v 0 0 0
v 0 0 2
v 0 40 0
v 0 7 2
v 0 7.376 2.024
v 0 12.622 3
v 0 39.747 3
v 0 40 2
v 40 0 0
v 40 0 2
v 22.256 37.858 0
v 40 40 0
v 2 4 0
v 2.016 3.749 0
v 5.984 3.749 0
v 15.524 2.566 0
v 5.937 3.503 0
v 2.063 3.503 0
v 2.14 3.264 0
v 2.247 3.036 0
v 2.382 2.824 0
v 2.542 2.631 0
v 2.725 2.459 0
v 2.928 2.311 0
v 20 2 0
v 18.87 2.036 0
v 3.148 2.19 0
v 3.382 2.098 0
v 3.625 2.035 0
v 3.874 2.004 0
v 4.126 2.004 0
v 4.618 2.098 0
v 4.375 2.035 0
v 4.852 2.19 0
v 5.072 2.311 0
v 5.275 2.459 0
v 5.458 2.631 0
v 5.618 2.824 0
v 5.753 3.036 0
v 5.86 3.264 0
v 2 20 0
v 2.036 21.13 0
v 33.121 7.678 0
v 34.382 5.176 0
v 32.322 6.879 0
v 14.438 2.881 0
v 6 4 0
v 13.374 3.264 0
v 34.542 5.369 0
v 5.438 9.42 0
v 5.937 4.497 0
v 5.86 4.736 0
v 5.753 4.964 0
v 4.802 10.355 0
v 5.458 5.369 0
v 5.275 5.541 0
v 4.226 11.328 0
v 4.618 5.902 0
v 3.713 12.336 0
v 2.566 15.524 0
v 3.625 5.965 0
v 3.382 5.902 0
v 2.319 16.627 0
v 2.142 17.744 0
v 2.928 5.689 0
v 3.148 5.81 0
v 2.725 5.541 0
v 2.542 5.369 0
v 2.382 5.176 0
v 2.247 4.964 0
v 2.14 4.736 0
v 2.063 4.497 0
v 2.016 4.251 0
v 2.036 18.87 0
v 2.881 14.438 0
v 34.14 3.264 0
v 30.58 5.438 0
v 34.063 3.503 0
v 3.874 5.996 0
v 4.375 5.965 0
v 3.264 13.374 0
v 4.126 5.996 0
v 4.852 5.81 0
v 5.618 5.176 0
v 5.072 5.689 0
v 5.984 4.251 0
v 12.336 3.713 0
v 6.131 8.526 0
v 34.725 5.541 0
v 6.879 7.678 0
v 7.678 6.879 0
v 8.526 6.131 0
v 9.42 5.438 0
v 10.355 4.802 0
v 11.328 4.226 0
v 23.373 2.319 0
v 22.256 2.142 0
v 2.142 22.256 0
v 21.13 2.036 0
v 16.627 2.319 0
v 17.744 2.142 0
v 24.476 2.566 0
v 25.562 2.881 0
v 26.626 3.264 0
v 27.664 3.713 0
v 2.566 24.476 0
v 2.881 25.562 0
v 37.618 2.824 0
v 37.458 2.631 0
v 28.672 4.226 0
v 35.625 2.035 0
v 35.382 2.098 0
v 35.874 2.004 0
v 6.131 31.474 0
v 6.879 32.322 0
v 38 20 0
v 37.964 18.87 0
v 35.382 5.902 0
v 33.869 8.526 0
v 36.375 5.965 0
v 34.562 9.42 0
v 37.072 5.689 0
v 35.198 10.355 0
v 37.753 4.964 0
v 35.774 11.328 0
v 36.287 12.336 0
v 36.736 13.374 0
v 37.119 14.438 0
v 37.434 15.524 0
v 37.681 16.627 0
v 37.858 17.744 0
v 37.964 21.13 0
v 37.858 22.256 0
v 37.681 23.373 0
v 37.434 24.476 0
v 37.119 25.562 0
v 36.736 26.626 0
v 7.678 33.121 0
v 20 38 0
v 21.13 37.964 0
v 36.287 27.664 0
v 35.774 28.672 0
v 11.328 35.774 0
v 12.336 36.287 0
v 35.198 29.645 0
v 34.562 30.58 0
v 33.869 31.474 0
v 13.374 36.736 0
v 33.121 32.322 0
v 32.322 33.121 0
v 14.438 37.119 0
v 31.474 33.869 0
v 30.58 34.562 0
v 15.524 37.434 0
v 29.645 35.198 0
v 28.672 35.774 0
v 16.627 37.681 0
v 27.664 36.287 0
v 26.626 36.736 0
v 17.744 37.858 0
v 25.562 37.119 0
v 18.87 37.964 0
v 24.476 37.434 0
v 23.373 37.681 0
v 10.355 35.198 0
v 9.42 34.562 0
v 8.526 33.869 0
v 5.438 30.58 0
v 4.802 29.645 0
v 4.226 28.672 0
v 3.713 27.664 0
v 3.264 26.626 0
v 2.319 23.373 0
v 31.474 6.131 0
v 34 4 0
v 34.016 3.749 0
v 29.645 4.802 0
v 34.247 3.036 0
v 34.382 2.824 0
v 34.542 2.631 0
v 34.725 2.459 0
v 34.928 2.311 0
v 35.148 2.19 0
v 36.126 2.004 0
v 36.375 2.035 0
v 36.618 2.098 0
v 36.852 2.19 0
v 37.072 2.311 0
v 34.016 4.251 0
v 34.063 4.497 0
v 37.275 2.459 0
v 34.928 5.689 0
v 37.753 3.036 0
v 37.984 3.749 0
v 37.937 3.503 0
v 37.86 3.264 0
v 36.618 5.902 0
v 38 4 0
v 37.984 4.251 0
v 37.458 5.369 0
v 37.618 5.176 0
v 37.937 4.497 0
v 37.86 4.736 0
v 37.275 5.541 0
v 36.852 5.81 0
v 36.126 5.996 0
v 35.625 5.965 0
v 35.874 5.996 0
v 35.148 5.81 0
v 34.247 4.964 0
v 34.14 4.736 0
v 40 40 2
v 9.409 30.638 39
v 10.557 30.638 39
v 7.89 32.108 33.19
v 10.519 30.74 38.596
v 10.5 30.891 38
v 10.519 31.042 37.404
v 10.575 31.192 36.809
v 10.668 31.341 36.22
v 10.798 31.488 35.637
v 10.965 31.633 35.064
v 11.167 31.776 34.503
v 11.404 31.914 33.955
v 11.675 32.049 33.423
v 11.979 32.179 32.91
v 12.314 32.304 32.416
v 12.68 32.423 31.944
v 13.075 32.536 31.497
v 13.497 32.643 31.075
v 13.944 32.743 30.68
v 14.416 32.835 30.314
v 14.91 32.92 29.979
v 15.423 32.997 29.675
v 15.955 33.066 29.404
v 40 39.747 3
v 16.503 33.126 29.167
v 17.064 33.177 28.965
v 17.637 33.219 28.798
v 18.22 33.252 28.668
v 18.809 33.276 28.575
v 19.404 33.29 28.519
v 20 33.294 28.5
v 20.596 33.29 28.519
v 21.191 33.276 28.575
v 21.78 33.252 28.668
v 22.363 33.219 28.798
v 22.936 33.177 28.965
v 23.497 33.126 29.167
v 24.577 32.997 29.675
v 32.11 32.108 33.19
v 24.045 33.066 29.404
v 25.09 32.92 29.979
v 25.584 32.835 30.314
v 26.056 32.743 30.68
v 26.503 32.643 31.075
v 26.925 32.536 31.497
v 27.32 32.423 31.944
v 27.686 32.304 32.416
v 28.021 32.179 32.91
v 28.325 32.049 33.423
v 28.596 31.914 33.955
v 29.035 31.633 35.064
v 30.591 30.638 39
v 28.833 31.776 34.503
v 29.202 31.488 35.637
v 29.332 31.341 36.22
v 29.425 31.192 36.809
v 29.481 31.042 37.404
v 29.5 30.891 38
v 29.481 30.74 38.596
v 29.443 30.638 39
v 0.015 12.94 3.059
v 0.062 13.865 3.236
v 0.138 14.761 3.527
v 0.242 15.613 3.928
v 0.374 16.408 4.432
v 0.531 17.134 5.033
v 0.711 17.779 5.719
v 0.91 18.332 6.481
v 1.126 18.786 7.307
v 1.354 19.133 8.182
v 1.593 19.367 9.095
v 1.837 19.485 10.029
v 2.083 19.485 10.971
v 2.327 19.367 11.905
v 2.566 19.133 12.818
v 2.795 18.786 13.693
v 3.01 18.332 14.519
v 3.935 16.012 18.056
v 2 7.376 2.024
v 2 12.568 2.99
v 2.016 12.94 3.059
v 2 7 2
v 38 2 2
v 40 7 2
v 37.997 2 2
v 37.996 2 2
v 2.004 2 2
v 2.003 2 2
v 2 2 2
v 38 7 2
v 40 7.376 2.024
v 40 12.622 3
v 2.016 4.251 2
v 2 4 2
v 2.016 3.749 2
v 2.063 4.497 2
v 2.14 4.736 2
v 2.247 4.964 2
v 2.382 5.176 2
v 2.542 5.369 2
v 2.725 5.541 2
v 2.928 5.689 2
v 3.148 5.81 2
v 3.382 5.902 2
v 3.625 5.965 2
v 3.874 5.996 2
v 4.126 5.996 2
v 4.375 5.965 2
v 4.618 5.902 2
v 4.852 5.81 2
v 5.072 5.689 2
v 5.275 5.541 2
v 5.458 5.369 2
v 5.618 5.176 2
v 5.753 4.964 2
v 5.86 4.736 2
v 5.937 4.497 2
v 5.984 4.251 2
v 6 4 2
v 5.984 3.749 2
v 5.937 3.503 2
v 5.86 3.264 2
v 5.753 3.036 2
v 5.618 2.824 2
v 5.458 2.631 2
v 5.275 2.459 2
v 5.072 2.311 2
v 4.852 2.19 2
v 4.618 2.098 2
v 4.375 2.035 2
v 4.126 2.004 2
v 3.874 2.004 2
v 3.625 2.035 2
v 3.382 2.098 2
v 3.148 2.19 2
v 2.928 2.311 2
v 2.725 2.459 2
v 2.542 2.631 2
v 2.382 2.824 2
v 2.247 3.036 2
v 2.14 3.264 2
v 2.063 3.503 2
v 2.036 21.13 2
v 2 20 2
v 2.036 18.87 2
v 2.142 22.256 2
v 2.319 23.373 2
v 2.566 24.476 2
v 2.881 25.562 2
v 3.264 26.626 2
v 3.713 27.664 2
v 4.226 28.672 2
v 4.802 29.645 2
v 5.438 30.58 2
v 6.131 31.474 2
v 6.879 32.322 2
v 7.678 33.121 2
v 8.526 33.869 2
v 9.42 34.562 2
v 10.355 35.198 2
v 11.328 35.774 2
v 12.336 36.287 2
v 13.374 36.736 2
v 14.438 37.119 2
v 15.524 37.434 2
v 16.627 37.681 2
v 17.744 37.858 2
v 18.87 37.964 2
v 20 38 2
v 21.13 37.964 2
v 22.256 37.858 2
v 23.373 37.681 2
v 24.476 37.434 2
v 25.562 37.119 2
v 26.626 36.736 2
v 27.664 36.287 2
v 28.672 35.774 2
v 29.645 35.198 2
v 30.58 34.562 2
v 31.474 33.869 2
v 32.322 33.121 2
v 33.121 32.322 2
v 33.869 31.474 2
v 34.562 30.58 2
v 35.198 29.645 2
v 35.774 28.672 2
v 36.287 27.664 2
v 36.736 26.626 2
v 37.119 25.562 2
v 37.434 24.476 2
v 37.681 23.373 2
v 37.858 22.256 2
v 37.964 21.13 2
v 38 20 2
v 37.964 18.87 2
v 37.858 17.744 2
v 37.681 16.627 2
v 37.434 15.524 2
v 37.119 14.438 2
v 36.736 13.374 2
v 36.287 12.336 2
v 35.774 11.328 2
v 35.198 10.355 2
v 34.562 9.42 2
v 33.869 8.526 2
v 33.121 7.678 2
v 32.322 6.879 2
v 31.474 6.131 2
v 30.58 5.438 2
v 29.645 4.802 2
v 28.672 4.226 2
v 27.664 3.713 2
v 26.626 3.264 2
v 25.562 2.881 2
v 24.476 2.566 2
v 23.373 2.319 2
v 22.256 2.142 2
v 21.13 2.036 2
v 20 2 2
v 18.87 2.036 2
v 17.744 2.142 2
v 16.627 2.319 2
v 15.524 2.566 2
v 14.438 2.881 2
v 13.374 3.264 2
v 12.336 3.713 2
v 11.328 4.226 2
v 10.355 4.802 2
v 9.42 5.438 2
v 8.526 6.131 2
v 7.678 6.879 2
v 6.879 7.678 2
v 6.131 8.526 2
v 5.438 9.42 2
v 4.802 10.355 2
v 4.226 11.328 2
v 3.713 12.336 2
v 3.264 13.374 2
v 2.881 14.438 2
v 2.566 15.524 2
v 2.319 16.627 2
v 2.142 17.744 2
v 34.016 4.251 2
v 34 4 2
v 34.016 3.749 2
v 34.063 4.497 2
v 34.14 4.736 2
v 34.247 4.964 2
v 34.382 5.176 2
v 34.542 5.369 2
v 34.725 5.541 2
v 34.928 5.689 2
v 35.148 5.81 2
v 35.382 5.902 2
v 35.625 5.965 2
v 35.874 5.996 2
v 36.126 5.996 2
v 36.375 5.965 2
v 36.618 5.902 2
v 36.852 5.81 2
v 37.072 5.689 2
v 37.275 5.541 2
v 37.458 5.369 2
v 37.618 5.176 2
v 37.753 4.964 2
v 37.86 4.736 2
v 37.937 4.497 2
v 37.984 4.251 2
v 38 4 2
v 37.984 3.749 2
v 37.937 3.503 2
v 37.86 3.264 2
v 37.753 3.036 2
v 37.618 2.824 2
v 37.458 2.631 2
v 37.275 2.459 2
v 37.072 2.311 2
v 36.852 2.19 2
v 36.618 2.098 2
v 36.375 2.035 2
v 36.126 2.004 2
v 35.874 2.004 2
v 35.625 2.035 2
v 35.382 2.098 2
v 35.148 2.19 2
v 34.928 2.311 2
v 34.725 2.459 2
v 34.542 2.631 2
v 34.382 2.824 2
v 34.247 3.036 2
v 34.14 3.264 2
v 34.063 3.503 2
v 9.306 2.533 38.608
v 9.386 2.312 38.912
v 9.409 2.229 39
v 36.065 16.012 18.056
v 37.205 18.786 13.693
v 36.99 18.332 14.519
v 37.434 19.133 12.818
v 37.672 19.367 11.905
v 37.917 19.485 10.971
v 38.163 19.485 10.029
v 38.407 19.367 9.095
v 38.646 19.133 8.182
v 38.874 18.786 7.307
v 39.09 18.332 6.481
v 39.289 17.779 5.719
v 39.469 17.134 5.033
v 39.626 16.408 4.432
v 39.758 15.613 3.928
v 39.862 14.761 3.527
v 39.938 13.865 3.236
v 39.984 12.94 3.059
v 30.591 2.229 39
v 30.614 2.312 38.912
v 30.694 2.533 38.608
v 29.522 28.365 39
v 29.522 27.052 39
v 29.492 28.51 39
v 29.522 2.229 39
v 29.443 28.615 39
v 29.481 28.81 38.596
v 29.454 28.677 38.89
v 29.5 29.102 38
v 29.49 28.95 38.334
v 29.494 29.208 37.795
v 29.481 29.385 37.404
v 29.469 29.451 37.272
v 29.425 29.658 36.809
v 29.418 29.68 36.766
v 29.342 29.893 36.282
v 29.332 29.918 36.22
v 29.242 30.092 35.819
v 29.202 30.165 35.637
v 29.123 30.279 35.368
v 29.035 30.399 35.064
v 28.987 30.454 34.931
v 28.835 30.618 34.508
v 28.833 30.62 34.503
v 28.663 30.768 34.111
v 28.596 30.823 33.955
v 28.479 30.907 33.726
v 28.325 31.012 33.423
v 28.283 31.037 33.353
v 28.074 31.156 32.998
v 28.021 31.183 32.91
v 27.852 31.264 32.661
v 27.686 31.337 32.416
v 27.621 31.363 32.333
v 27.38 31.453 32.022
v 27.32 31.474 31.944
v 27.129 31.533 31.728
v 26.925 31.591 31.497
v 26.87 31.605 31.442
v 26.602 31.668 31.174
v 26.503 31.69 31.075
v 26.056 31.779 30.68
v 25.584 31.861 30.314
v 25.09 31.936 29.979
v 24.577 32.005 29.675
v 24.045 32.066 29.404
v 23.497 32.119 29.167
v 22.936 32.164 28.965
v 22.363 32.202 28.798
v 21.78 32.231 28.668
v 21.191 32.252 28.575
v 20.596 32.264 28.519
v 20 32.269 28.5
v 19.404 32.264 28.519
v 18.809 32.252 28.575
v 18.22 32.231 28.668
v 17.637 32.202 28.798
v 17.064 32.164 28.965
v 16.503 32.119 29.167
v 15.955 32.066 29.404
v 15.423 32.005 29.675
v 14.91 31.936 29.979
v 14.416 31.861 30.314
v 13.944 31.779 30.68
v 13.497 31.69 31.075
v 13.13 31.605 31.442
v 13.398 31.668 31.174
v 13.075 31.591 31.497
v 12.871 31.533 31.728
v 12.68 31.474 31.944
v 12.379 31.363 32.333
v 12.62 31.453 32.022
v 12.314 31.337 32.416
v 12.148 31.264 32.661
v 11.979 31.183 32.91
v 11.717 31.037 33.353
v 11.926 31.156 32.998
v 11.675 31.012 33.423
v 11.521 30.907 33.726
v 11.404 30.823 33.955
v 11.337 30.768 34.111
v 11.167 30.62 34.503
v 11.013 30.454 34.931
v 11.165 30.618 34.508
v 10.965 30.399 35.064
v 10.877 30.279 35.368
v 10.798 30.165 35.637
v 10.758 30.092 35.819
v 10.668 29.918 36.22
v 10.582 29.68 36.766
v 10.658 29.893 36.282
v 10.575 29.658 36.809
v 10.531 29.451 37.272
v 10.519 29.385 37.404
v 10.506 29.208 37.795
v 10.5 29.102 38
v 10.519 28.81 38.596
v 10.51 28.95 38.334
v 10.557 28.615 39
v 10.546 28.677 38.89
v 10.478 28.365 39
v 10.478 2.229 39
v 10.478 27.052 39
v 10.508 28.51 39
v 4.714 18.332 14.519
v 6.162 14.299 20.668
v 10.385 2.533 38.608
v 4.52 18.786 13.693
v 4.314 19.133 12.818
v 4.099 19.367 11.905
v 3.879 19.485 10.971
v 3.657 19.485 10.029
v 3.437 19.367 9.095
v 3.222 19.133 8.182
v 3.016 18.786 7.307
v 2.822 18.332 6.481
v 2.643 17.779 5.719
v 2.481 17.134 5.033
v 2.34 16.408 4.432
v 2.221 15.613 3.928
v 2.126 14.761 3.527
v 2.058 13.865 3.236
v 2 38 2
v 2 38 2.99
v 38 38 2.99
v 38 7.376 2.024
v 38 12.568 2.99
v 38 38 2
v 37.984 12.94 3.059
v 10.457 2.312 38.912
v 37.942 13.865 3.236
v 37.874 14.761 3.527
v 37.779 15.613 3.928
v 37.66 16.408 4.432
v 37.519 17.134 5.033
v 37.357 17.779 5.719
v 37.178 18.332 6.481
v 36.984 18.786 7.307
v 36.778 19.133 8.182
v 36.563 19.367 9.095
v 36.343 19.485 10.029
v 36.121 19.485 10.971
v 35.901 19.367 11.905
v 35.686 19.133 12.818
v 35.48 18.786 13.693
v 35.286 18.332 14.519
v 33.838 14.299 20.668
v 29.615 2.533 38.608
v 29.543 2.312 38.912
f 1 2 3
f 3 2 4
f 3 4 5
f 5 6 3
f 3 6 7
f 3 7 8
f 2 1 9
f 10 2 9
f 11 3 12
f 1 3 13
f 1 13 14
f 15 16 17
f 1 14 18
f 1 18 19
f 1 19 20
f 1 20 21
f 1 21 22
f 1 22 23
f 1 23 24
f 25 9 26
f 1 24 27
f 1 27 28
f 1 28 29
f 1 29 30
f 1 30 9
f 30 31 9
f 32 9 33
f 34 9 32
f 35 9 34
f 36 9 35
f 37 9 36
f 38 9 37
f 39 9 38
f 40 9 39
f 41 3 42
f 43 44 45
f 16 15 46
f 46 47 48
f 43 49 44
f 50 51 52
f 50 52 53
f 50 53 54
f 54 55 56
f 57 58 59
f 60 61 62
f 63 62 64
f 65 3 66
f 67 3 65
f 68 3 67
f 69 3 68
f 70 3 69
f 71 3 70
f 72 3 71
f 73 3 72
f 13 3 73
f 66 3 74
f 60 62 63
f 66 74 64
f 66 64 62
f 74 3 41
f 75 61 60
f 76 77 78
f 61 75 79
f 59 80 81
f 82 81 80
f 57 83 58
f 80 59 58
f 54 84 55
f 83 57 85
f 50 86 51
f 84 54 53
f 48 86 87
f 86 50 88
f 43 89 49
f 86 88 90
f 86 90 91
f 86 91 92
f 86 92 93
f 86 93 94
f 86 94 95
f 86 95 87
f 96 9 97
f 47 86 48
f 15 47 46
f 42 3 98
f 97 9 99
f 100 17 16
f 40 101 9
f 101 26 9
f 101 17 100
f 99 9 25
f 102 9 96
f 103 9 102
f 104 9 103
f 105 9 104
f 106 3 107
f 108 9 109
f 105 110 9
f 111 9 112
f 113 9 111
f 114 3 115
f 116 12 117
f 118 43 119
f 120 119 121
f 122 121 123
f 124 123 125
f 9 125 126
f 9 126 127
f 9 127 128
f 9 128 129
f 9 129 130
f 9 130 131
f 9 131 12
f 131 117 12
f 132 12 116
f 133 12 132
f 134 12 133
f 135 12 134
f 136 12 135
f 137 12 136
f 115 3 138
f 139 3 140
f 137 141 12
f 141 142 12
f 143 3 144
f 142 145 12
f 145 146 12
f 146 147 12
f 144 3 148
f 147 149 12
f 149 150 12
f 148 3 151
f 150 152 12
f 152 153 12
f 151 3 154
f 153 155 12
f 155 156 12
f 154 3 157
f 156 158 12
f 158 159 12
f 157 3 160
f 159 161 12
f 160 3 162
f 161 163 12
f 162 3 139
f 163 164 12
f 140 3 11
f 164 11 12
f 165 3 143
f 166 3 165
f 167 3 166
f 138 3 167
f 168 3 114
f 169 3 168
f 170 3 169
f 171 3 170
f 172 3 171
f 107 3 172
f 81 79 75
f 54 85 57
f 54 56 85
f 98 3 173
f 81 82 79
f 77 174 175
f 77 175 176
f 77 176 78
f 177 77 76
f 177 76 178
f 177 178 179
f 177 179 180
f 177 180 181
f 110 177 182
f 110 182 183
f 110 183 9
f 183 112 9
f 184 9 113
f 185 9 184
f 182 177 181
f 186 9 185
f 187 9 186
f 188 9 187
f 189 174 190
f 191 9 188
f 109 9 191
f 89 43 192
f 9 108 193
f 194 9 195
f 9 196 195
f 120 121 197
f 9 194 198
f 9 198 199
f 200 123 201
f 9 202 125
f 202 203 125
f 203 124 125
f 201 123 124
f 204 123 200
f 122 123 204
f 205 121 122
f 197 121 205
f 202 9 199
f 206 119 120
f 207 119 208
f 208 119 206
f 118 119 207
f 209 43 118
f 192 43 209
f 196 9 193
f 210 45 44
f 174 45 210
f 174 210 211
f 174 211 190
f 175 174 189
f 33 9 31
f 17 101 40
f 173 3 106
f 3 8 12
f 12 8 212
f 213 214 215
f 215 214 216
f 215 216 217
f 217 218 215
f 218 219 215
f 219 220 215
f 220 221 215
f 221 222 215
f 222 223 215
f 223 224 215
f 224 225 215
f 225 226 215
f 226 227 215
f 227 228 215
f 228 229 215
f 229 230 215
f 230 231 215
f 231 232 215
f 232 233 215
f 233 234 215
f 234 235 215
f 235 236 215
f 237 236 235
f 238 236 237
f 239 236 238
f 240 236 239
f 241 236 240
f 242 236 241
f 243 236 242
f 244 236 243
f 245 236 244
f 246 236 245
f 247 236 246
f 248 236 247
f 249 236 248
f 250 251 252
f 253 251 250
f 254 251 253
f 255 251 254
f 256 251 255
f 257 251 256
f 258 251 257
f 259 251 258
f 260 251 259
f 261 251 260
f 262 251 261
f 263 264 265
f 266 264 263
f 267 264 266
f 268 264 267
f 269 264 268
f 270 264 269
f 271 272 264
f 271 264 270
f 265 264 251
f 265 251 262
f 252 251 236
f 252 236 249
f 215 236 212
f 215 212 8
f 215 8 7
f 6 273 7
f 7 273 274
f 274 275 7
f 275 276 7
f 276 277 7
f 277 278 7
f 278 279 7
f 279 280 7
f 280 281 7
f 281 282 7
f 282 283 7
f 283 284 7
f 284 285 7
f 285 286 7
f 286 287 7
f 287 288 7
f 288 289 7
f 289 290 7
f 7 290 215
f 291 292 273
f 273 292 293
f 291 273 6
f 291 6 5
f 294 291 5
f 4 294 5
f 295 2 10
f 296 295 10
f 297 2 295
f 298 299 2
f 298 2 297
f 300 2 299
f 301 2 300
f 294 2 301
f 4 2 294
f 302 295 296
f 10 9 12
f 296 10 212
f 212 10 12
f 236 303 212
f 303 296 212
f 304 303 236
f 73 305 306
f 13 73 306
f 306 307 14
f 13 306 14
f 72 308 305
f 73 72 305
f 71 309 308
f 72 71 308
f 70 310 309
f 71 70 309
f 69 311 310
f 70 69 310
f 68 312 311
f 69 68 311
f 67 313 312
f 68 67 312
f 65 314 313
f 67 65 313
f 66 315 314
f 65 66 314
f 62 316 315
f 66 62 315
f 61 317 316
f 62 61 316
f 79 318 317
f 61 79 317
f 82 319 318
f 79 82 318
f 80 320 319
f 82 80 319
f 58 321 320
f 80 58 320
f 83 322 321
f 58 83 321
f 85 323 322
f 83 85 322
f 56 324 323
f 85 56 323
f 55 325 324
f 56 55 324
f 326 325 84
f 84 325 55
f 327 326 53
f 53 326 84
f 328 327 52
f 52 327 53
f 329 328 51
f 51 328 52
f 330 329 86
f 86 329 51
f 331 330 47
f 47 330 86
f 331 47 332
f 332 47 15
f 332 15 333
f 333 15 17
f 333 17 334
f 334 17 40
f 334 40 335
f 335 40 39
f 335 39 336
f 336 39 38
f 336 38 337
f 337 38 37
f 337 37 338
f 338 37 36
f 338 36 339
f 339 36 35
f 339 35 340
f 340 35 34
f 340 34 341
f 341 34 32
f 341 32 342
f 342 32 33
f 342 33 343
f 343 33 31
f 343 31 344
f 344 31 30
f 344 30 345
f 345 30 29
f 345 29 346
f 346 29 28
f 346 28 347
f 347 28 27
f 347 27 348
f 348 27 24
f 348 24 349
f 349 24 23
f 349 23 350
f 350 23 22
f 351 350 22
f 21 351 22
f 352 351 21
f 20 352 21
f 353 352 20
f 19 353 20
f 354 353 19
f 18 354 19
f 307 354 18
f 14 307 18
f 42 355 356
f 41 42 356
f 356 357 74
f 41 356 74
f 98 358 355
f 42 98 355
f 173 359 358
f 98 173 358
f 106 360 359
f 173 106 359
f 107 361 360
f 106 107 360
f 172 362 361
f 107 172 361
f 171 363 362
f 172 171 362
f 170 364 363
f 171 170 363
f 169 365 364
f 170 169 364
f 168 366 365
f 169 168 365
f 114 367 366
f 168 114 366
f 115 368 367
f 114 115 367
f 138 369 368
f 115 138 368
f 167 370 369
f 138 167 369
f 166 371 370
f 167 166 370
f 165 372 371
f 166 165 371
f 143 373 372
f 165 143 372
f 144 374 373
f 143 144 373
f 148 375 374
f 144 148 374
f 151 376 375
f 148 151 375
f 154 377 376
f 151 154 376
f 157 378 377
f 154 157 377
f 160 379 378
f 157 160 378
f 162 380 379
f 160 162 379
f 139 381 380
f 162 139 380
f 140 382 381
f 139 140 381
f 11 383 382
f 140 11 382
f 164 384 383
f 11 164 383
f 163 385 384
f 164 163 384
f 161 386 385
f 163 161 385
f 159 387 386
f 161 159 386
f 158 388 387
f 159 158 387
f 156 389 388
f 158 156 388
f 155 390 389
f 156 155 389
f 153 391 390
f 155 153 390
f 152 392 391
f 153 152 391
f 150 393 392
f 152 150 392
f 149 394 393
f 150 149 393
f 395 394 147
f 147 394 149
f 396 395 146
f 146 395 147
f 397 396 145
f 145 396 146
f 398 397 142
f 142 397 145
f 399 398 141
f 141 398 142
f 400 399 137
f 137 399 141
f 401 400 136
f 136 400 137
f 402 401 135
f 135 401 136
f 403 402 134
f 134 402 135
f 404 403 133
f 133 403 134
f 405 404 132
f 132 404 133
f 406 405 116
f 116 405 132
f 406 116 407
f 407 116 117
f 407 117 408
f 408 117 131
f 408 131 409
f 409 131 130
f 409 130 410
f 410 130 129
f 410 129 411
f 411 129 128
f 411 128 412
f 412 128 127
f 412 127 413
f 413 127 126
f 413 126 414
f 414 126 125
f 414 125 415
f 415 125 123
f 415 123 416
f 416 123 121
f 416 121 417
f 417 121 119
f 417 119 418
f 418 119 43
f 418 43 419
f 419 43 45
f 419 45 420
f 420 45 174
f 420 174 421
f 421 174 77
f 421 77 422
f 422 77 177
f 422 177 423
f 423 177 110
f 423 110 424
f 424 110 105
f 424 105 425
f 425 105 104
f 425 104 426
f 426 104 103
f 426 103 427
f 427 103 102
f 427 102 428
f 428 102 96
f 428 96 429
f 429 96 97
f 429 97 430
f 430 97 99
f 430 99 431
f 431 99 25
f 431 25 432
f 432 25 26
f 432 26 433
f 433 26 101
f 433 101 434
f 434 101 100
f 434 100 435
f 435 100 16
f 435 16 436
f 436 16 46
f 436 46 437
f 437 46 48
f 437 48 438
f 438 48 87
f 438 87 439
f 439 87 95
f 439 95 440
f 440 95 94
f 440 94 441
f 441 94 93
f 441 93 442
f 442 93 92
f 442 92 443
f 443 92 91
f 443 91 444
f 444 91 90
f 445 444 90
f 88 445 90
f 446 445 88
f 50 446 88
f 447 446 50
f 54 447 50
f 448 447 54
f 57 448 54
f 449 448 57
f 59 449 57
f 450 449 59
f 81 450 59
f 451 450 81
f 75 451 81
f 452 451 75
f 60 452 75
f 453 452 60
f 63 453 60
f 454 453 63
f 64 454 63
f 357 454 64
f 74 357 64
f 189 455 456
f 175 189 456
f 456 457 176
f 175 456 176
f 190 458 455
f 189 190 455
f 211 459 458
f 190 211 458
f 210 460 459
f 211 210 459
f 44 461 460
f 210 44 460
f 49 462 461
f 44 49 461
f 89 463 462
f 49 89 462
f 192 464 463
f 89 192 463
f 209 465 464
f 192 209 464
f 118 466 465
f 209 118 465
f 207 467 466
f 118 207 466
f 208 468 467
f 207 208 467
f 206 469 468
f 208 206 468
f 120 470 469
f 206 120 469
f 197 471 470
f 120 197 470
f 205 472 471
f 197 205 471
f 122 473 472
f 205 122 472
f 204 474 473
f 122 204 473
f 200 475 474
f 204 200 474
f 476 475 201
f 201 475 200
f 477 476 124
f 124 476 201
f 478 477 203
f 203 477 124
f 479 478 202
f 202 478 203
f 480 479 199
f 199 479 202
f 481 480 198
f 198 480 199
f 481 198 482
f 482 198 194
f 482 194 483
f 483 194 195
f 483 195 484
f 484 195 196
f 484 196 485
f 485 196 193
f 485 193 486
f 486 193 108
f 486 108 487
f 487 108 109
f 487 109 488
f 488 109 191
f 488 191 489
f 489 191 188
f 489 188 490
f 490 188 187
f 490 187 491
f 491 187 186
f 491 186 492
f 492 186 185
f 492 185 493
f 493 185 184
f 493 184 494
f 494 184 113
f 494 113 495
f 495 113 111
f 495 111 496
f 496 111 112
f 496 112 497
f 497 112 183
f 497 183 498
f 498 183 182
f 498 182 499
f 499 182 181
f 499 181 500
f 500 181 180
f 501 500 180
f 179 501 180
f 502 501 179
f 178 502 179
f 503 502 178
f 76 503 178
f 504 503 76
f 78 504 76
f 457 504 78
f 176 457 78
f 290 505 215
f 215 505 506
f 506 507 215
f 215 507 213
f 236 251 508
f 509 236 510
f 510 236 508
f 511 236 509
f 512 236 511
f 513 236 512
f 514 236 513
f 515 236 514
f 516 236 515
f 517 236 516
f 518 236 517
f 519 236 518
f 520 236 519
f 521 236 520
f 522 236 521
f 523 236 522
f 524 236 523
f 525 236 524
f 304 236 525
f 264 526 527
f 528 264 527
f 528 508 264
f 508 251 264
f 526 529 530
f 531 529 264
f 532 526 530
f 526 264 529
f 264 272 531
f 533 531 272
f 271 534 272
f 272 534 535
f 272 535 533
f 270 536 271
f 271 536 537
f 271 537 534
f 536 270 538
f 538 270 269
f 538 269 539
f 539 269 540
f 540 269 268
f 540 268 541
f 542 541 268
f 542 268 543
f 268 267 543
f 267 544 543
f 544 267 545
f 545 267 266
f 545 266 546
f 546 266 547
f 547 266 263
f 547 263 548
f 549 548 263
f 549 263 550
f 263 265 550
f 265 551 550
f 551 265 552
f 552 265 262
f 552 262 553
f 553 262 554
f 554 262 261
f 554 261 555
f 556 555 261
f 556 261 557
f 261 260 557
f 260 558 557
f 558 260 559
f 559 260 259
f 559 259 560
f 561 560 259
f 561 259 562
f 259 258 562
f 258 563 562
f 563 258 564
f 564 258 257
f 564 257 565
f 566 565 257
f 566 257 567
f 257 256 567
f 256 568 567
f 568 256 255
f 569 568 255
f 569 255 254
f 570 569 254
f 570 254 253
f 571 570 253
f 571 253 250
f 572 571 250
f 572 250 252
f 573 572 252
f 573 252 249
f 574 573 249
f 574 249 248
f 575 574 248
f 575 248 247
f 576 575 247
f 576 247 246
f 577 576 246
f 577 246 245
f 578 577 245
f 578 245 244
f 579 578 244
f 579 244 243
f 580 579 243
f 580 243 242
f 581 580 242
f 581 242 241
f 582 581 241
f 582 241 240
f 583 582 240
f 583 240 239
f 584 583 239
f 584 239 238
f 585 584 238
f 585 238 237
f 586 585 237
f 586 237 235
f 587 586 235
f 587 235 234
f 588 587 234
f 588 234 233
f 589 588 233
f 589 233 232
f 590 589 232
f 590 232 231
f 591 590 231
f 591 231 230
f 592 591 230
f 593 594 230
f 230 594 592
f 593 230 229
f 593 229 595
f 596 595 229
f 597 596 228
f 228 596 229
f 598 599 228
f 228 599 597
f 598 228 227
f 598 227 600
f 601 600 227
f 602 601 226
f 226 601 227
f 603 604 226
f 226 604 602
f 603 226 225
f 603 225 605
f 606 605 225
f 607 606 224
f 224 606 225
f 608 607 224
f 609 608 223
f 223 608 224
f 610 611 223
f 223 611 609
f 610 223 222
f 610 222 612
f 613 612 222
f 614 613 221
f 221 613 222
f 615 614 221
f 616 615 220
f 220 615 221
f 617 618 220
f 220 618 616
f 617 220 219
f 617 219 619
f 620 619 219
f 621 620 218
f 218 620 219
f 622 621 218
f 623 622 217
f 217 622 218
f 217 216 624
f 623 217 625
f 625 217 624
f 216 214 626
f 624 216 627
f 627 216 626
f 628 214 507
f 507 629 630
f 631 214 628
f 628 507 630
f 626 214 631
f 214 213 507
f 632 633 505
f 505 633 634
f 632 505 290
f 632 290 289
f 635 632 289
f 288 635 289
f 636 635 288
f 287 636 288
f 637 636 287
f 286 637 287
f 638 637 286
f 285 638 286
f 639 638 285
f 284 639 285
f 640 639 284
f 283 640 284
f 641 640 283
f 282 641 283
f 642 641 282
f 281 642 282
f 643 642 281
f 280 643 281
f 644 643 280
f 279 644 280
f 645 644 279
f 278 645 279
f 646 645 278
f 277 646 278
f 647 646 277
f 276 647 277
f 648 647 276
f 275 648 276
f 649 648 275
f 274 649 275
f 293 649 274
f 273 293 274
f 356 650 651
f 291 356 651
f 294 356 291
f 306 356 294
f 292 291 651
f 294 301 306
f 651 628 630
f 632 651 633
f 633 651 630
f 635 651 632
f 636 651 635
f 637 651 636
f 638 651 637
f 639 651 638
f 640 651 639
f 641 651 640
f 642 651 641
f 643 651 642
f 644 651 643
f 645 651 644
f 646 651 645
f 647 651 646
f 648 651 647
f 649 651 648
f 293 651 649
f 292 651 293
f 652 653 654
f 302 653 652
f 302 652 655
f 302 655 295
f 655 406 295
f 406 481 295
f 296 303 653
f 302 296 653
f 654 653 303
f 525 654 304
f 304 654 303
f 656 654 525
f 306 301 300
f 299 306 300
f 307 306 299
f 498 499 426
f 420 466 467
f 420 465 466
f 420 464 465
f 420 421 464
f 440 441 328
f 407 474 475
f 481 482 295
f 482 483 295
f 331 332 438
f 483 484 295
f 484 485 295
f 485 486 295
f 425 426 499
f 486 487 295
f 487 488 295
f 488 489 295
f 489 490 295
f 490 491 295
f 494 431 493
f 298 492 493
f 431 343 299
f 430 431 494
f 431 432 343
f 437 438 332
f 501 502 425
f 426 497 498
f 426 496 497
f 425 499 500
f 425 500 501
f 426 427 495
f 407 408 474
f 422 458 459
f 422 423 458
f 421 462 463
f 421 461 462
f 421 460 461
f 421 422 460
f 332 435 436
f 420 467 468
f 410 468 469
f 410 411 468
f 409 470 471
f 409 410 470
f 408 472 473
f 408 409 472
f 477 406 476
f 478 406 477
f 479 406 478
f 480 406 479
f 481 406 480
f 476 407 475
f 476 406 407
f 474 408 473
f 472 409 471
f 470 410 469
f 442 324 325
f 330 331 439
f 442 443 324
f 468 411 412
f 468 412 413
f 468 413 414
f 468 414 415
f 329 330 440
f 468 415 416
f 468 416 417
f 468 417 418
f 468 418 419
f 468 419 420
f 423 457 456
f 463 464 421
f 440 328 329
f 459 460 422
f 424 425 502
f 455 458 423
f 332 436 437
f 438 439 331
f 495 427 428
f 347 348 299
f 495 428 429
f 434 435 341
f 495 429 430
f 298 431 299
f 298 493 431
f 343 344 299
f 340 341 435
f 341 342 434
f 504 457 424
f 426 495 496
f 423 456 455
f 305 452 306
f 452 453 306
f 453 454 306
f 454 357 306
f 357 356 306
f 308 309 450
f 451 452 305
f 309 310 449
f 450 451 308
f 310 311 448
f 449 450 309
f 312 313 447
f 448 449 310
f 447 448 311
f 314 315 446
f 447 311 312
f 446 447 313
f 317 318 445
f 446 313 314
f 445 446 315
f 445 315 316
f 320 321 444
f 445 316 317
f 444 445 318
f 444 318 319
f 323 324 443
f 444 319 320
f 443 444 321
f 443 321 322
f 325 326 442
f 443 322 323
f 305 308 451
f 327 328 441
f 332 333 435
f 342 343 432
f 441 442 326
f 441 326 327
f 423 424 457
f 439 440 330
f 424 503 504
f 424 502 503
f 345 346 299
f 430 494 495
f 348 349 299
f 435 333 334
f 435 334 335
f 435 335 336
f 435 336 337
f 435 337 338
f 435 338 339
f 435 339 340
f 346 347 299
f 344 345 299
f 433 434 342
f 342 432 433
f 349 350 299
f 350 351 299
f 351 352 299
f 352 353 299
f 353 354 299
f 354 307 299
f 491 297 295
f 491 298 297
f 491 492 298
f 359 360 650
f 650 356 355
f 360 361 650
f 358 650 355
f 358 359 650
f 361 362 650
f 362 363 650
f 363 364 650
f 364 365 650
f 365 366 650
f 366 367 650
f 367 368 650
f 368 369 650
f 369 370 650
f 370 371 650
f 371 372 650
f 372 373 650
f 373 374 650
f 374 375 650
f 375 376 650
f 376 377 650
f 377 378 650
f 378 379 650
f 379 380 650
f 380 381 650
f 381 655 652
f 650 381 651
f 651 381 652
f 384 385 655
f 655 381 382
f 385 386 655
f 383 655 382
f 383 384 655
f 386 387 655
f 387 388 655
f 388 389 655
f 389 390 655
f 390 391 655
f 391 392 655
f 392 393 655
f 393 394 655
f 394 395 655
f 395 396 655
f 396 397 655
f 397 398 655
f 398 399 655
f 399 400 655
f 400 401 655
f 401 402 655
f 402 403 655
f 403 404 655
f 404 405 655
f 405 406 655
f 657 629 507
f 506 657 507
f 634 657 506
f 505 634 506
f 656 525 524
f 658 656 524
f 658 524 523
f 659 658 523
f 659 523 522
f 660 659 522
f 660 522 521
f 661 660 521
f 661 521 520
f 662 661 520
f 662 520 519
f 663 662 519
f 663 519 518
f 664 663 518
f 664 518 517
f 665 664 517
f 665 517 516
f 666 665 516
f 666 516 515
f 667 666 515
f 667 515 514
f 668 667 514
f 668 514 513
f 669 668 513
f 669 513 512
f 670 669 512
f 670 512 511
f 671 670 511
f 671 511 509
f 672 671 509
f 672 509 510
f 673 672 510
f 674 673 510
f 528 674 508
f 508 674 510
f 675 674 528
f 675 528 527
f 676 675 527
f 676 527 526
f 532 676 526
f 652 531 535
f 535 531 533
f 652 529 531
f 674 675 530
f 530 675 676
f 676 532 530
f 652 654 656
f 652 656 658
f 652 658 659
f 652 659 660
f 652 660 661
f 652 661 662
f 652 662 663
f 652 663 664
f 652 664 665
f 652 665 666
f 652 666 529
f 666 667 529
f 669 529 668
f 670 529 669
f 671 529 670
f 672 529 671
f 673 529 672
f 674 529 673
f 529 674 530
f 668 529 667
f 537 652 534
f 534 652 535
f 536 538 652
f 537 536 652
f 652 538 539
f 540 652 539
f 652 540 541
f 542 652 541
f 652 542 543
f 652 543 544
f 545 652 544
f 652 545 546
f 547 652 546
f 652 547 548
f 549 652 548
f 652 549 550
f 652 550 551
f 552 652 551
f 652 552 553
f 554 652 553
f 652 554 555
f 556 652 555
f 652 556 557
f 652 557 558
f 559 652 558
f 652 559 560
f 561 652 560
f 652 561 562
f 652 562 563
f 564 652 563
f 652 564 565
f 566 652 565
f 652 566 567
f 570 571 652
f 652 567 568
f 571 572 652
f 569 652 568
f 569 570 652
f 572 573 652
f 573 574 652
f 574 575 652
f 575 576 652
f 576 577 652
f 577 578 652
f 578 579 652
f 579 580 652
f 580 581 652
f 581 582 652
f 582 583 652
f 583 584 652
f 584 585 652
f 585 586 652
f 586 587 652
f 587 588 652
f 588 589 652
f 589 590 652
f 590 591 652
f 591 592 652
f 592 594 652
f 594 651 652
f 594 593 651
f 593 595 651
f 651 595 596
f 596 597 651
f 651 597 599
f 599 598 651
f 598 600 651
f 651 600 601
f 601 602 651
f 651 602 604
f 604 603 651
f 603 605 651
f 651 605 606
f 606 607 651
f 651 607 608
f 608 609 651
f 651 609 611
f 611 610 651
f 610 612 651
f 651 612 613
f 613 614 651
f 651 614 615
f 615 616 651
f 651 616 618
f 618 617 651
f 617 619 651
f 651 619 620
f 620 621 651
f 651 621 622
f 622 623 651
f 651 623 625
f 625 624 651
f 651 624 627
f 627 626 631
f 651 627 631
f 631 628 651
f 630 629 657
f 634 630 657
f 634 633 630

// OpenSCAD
entraxe=32;
larg=40;
r_m3=2;
r_corpstete=8.5;

module plaque_rapporte(){ //plaque pour ne pas tout ouvrir au niveau du trou central
	difference(){
		cube([larg,17,2]);
		//trous de montage ventilateur
		translate([4,4,-5]){cylinder(r=r_m3, h=10, $fn=50);}
		translate([larg-4,4,-5]){cylinder(r=r_m3, h=10, $fn=50);}
		
	}
}

module support_fan(){
	difference(){
		//plaque de base
		cube([larg,larg,2]);


		//trous de montage ventilateur
		translate([4,4,-5]){cylinder(r=r_m3, h=10, $fn=50);}
		translate([larg-4,4,-5]){cylinder(r=r_m3, h=10, $fn=50);}

		//trou central
		translate([20,20,-5]){cylinder(r=18, h=10, $fn=100);}
	}
}

module cone(){
	difference(){
		hull(){
			translate([0,0,0]){cube([larg,larg,1]);}
			translate([larg/2,0,36]){rotate([-90,0,0])cylinder(r=r_corpstete+2, h=larg, $fn=100);}
		}

		hull(){
			translate([2,2,-0.01]){cube([larg-4,larg-4,1]);}
			translate([larg/2,2,36]){rotate([-90,0,0])cylinder(r=r_corpstete+1, h=larg-4-10, $fn=100);}
		}

		hull(){
			translate([-5,-3,3]){rotate([0,90,0])cylinder(r=3, h=larg+10, $fn=50);}
			translate([-5,7,3]){rotate([0,90,0])cylinder(r=3, h=larg+10, $fn=50);}
			translate([-5,12,8.5]){rotate([0,90,0])cylinder(r=7.5, h=larg+10, $fn=50);}
			//translate([-5,5,20]){rotate([0,90,0])cylinder(r=6, h=larg+10, $fn=50);}
			translate([-5,0,35]){rotate([0,90,0])cylinder(r=3, h=larg+10, $fn=50);}

		}

		//on coupe le chapeau
		translate([larg/2,-5,36]){rotate([-90,0,0])cylinder(r=r_corpstete+1, h=larg+10, $fn=100);}
		translate([0,-5,36+1]){cube([100,larg+10,20]);}

		translate([0,larg,0]){rotate([14.2,0,0])cube([50,20,50]);}

	}
}

support_fan();
//plaque_rapporte();
translate([0,0,2]){cone();}
